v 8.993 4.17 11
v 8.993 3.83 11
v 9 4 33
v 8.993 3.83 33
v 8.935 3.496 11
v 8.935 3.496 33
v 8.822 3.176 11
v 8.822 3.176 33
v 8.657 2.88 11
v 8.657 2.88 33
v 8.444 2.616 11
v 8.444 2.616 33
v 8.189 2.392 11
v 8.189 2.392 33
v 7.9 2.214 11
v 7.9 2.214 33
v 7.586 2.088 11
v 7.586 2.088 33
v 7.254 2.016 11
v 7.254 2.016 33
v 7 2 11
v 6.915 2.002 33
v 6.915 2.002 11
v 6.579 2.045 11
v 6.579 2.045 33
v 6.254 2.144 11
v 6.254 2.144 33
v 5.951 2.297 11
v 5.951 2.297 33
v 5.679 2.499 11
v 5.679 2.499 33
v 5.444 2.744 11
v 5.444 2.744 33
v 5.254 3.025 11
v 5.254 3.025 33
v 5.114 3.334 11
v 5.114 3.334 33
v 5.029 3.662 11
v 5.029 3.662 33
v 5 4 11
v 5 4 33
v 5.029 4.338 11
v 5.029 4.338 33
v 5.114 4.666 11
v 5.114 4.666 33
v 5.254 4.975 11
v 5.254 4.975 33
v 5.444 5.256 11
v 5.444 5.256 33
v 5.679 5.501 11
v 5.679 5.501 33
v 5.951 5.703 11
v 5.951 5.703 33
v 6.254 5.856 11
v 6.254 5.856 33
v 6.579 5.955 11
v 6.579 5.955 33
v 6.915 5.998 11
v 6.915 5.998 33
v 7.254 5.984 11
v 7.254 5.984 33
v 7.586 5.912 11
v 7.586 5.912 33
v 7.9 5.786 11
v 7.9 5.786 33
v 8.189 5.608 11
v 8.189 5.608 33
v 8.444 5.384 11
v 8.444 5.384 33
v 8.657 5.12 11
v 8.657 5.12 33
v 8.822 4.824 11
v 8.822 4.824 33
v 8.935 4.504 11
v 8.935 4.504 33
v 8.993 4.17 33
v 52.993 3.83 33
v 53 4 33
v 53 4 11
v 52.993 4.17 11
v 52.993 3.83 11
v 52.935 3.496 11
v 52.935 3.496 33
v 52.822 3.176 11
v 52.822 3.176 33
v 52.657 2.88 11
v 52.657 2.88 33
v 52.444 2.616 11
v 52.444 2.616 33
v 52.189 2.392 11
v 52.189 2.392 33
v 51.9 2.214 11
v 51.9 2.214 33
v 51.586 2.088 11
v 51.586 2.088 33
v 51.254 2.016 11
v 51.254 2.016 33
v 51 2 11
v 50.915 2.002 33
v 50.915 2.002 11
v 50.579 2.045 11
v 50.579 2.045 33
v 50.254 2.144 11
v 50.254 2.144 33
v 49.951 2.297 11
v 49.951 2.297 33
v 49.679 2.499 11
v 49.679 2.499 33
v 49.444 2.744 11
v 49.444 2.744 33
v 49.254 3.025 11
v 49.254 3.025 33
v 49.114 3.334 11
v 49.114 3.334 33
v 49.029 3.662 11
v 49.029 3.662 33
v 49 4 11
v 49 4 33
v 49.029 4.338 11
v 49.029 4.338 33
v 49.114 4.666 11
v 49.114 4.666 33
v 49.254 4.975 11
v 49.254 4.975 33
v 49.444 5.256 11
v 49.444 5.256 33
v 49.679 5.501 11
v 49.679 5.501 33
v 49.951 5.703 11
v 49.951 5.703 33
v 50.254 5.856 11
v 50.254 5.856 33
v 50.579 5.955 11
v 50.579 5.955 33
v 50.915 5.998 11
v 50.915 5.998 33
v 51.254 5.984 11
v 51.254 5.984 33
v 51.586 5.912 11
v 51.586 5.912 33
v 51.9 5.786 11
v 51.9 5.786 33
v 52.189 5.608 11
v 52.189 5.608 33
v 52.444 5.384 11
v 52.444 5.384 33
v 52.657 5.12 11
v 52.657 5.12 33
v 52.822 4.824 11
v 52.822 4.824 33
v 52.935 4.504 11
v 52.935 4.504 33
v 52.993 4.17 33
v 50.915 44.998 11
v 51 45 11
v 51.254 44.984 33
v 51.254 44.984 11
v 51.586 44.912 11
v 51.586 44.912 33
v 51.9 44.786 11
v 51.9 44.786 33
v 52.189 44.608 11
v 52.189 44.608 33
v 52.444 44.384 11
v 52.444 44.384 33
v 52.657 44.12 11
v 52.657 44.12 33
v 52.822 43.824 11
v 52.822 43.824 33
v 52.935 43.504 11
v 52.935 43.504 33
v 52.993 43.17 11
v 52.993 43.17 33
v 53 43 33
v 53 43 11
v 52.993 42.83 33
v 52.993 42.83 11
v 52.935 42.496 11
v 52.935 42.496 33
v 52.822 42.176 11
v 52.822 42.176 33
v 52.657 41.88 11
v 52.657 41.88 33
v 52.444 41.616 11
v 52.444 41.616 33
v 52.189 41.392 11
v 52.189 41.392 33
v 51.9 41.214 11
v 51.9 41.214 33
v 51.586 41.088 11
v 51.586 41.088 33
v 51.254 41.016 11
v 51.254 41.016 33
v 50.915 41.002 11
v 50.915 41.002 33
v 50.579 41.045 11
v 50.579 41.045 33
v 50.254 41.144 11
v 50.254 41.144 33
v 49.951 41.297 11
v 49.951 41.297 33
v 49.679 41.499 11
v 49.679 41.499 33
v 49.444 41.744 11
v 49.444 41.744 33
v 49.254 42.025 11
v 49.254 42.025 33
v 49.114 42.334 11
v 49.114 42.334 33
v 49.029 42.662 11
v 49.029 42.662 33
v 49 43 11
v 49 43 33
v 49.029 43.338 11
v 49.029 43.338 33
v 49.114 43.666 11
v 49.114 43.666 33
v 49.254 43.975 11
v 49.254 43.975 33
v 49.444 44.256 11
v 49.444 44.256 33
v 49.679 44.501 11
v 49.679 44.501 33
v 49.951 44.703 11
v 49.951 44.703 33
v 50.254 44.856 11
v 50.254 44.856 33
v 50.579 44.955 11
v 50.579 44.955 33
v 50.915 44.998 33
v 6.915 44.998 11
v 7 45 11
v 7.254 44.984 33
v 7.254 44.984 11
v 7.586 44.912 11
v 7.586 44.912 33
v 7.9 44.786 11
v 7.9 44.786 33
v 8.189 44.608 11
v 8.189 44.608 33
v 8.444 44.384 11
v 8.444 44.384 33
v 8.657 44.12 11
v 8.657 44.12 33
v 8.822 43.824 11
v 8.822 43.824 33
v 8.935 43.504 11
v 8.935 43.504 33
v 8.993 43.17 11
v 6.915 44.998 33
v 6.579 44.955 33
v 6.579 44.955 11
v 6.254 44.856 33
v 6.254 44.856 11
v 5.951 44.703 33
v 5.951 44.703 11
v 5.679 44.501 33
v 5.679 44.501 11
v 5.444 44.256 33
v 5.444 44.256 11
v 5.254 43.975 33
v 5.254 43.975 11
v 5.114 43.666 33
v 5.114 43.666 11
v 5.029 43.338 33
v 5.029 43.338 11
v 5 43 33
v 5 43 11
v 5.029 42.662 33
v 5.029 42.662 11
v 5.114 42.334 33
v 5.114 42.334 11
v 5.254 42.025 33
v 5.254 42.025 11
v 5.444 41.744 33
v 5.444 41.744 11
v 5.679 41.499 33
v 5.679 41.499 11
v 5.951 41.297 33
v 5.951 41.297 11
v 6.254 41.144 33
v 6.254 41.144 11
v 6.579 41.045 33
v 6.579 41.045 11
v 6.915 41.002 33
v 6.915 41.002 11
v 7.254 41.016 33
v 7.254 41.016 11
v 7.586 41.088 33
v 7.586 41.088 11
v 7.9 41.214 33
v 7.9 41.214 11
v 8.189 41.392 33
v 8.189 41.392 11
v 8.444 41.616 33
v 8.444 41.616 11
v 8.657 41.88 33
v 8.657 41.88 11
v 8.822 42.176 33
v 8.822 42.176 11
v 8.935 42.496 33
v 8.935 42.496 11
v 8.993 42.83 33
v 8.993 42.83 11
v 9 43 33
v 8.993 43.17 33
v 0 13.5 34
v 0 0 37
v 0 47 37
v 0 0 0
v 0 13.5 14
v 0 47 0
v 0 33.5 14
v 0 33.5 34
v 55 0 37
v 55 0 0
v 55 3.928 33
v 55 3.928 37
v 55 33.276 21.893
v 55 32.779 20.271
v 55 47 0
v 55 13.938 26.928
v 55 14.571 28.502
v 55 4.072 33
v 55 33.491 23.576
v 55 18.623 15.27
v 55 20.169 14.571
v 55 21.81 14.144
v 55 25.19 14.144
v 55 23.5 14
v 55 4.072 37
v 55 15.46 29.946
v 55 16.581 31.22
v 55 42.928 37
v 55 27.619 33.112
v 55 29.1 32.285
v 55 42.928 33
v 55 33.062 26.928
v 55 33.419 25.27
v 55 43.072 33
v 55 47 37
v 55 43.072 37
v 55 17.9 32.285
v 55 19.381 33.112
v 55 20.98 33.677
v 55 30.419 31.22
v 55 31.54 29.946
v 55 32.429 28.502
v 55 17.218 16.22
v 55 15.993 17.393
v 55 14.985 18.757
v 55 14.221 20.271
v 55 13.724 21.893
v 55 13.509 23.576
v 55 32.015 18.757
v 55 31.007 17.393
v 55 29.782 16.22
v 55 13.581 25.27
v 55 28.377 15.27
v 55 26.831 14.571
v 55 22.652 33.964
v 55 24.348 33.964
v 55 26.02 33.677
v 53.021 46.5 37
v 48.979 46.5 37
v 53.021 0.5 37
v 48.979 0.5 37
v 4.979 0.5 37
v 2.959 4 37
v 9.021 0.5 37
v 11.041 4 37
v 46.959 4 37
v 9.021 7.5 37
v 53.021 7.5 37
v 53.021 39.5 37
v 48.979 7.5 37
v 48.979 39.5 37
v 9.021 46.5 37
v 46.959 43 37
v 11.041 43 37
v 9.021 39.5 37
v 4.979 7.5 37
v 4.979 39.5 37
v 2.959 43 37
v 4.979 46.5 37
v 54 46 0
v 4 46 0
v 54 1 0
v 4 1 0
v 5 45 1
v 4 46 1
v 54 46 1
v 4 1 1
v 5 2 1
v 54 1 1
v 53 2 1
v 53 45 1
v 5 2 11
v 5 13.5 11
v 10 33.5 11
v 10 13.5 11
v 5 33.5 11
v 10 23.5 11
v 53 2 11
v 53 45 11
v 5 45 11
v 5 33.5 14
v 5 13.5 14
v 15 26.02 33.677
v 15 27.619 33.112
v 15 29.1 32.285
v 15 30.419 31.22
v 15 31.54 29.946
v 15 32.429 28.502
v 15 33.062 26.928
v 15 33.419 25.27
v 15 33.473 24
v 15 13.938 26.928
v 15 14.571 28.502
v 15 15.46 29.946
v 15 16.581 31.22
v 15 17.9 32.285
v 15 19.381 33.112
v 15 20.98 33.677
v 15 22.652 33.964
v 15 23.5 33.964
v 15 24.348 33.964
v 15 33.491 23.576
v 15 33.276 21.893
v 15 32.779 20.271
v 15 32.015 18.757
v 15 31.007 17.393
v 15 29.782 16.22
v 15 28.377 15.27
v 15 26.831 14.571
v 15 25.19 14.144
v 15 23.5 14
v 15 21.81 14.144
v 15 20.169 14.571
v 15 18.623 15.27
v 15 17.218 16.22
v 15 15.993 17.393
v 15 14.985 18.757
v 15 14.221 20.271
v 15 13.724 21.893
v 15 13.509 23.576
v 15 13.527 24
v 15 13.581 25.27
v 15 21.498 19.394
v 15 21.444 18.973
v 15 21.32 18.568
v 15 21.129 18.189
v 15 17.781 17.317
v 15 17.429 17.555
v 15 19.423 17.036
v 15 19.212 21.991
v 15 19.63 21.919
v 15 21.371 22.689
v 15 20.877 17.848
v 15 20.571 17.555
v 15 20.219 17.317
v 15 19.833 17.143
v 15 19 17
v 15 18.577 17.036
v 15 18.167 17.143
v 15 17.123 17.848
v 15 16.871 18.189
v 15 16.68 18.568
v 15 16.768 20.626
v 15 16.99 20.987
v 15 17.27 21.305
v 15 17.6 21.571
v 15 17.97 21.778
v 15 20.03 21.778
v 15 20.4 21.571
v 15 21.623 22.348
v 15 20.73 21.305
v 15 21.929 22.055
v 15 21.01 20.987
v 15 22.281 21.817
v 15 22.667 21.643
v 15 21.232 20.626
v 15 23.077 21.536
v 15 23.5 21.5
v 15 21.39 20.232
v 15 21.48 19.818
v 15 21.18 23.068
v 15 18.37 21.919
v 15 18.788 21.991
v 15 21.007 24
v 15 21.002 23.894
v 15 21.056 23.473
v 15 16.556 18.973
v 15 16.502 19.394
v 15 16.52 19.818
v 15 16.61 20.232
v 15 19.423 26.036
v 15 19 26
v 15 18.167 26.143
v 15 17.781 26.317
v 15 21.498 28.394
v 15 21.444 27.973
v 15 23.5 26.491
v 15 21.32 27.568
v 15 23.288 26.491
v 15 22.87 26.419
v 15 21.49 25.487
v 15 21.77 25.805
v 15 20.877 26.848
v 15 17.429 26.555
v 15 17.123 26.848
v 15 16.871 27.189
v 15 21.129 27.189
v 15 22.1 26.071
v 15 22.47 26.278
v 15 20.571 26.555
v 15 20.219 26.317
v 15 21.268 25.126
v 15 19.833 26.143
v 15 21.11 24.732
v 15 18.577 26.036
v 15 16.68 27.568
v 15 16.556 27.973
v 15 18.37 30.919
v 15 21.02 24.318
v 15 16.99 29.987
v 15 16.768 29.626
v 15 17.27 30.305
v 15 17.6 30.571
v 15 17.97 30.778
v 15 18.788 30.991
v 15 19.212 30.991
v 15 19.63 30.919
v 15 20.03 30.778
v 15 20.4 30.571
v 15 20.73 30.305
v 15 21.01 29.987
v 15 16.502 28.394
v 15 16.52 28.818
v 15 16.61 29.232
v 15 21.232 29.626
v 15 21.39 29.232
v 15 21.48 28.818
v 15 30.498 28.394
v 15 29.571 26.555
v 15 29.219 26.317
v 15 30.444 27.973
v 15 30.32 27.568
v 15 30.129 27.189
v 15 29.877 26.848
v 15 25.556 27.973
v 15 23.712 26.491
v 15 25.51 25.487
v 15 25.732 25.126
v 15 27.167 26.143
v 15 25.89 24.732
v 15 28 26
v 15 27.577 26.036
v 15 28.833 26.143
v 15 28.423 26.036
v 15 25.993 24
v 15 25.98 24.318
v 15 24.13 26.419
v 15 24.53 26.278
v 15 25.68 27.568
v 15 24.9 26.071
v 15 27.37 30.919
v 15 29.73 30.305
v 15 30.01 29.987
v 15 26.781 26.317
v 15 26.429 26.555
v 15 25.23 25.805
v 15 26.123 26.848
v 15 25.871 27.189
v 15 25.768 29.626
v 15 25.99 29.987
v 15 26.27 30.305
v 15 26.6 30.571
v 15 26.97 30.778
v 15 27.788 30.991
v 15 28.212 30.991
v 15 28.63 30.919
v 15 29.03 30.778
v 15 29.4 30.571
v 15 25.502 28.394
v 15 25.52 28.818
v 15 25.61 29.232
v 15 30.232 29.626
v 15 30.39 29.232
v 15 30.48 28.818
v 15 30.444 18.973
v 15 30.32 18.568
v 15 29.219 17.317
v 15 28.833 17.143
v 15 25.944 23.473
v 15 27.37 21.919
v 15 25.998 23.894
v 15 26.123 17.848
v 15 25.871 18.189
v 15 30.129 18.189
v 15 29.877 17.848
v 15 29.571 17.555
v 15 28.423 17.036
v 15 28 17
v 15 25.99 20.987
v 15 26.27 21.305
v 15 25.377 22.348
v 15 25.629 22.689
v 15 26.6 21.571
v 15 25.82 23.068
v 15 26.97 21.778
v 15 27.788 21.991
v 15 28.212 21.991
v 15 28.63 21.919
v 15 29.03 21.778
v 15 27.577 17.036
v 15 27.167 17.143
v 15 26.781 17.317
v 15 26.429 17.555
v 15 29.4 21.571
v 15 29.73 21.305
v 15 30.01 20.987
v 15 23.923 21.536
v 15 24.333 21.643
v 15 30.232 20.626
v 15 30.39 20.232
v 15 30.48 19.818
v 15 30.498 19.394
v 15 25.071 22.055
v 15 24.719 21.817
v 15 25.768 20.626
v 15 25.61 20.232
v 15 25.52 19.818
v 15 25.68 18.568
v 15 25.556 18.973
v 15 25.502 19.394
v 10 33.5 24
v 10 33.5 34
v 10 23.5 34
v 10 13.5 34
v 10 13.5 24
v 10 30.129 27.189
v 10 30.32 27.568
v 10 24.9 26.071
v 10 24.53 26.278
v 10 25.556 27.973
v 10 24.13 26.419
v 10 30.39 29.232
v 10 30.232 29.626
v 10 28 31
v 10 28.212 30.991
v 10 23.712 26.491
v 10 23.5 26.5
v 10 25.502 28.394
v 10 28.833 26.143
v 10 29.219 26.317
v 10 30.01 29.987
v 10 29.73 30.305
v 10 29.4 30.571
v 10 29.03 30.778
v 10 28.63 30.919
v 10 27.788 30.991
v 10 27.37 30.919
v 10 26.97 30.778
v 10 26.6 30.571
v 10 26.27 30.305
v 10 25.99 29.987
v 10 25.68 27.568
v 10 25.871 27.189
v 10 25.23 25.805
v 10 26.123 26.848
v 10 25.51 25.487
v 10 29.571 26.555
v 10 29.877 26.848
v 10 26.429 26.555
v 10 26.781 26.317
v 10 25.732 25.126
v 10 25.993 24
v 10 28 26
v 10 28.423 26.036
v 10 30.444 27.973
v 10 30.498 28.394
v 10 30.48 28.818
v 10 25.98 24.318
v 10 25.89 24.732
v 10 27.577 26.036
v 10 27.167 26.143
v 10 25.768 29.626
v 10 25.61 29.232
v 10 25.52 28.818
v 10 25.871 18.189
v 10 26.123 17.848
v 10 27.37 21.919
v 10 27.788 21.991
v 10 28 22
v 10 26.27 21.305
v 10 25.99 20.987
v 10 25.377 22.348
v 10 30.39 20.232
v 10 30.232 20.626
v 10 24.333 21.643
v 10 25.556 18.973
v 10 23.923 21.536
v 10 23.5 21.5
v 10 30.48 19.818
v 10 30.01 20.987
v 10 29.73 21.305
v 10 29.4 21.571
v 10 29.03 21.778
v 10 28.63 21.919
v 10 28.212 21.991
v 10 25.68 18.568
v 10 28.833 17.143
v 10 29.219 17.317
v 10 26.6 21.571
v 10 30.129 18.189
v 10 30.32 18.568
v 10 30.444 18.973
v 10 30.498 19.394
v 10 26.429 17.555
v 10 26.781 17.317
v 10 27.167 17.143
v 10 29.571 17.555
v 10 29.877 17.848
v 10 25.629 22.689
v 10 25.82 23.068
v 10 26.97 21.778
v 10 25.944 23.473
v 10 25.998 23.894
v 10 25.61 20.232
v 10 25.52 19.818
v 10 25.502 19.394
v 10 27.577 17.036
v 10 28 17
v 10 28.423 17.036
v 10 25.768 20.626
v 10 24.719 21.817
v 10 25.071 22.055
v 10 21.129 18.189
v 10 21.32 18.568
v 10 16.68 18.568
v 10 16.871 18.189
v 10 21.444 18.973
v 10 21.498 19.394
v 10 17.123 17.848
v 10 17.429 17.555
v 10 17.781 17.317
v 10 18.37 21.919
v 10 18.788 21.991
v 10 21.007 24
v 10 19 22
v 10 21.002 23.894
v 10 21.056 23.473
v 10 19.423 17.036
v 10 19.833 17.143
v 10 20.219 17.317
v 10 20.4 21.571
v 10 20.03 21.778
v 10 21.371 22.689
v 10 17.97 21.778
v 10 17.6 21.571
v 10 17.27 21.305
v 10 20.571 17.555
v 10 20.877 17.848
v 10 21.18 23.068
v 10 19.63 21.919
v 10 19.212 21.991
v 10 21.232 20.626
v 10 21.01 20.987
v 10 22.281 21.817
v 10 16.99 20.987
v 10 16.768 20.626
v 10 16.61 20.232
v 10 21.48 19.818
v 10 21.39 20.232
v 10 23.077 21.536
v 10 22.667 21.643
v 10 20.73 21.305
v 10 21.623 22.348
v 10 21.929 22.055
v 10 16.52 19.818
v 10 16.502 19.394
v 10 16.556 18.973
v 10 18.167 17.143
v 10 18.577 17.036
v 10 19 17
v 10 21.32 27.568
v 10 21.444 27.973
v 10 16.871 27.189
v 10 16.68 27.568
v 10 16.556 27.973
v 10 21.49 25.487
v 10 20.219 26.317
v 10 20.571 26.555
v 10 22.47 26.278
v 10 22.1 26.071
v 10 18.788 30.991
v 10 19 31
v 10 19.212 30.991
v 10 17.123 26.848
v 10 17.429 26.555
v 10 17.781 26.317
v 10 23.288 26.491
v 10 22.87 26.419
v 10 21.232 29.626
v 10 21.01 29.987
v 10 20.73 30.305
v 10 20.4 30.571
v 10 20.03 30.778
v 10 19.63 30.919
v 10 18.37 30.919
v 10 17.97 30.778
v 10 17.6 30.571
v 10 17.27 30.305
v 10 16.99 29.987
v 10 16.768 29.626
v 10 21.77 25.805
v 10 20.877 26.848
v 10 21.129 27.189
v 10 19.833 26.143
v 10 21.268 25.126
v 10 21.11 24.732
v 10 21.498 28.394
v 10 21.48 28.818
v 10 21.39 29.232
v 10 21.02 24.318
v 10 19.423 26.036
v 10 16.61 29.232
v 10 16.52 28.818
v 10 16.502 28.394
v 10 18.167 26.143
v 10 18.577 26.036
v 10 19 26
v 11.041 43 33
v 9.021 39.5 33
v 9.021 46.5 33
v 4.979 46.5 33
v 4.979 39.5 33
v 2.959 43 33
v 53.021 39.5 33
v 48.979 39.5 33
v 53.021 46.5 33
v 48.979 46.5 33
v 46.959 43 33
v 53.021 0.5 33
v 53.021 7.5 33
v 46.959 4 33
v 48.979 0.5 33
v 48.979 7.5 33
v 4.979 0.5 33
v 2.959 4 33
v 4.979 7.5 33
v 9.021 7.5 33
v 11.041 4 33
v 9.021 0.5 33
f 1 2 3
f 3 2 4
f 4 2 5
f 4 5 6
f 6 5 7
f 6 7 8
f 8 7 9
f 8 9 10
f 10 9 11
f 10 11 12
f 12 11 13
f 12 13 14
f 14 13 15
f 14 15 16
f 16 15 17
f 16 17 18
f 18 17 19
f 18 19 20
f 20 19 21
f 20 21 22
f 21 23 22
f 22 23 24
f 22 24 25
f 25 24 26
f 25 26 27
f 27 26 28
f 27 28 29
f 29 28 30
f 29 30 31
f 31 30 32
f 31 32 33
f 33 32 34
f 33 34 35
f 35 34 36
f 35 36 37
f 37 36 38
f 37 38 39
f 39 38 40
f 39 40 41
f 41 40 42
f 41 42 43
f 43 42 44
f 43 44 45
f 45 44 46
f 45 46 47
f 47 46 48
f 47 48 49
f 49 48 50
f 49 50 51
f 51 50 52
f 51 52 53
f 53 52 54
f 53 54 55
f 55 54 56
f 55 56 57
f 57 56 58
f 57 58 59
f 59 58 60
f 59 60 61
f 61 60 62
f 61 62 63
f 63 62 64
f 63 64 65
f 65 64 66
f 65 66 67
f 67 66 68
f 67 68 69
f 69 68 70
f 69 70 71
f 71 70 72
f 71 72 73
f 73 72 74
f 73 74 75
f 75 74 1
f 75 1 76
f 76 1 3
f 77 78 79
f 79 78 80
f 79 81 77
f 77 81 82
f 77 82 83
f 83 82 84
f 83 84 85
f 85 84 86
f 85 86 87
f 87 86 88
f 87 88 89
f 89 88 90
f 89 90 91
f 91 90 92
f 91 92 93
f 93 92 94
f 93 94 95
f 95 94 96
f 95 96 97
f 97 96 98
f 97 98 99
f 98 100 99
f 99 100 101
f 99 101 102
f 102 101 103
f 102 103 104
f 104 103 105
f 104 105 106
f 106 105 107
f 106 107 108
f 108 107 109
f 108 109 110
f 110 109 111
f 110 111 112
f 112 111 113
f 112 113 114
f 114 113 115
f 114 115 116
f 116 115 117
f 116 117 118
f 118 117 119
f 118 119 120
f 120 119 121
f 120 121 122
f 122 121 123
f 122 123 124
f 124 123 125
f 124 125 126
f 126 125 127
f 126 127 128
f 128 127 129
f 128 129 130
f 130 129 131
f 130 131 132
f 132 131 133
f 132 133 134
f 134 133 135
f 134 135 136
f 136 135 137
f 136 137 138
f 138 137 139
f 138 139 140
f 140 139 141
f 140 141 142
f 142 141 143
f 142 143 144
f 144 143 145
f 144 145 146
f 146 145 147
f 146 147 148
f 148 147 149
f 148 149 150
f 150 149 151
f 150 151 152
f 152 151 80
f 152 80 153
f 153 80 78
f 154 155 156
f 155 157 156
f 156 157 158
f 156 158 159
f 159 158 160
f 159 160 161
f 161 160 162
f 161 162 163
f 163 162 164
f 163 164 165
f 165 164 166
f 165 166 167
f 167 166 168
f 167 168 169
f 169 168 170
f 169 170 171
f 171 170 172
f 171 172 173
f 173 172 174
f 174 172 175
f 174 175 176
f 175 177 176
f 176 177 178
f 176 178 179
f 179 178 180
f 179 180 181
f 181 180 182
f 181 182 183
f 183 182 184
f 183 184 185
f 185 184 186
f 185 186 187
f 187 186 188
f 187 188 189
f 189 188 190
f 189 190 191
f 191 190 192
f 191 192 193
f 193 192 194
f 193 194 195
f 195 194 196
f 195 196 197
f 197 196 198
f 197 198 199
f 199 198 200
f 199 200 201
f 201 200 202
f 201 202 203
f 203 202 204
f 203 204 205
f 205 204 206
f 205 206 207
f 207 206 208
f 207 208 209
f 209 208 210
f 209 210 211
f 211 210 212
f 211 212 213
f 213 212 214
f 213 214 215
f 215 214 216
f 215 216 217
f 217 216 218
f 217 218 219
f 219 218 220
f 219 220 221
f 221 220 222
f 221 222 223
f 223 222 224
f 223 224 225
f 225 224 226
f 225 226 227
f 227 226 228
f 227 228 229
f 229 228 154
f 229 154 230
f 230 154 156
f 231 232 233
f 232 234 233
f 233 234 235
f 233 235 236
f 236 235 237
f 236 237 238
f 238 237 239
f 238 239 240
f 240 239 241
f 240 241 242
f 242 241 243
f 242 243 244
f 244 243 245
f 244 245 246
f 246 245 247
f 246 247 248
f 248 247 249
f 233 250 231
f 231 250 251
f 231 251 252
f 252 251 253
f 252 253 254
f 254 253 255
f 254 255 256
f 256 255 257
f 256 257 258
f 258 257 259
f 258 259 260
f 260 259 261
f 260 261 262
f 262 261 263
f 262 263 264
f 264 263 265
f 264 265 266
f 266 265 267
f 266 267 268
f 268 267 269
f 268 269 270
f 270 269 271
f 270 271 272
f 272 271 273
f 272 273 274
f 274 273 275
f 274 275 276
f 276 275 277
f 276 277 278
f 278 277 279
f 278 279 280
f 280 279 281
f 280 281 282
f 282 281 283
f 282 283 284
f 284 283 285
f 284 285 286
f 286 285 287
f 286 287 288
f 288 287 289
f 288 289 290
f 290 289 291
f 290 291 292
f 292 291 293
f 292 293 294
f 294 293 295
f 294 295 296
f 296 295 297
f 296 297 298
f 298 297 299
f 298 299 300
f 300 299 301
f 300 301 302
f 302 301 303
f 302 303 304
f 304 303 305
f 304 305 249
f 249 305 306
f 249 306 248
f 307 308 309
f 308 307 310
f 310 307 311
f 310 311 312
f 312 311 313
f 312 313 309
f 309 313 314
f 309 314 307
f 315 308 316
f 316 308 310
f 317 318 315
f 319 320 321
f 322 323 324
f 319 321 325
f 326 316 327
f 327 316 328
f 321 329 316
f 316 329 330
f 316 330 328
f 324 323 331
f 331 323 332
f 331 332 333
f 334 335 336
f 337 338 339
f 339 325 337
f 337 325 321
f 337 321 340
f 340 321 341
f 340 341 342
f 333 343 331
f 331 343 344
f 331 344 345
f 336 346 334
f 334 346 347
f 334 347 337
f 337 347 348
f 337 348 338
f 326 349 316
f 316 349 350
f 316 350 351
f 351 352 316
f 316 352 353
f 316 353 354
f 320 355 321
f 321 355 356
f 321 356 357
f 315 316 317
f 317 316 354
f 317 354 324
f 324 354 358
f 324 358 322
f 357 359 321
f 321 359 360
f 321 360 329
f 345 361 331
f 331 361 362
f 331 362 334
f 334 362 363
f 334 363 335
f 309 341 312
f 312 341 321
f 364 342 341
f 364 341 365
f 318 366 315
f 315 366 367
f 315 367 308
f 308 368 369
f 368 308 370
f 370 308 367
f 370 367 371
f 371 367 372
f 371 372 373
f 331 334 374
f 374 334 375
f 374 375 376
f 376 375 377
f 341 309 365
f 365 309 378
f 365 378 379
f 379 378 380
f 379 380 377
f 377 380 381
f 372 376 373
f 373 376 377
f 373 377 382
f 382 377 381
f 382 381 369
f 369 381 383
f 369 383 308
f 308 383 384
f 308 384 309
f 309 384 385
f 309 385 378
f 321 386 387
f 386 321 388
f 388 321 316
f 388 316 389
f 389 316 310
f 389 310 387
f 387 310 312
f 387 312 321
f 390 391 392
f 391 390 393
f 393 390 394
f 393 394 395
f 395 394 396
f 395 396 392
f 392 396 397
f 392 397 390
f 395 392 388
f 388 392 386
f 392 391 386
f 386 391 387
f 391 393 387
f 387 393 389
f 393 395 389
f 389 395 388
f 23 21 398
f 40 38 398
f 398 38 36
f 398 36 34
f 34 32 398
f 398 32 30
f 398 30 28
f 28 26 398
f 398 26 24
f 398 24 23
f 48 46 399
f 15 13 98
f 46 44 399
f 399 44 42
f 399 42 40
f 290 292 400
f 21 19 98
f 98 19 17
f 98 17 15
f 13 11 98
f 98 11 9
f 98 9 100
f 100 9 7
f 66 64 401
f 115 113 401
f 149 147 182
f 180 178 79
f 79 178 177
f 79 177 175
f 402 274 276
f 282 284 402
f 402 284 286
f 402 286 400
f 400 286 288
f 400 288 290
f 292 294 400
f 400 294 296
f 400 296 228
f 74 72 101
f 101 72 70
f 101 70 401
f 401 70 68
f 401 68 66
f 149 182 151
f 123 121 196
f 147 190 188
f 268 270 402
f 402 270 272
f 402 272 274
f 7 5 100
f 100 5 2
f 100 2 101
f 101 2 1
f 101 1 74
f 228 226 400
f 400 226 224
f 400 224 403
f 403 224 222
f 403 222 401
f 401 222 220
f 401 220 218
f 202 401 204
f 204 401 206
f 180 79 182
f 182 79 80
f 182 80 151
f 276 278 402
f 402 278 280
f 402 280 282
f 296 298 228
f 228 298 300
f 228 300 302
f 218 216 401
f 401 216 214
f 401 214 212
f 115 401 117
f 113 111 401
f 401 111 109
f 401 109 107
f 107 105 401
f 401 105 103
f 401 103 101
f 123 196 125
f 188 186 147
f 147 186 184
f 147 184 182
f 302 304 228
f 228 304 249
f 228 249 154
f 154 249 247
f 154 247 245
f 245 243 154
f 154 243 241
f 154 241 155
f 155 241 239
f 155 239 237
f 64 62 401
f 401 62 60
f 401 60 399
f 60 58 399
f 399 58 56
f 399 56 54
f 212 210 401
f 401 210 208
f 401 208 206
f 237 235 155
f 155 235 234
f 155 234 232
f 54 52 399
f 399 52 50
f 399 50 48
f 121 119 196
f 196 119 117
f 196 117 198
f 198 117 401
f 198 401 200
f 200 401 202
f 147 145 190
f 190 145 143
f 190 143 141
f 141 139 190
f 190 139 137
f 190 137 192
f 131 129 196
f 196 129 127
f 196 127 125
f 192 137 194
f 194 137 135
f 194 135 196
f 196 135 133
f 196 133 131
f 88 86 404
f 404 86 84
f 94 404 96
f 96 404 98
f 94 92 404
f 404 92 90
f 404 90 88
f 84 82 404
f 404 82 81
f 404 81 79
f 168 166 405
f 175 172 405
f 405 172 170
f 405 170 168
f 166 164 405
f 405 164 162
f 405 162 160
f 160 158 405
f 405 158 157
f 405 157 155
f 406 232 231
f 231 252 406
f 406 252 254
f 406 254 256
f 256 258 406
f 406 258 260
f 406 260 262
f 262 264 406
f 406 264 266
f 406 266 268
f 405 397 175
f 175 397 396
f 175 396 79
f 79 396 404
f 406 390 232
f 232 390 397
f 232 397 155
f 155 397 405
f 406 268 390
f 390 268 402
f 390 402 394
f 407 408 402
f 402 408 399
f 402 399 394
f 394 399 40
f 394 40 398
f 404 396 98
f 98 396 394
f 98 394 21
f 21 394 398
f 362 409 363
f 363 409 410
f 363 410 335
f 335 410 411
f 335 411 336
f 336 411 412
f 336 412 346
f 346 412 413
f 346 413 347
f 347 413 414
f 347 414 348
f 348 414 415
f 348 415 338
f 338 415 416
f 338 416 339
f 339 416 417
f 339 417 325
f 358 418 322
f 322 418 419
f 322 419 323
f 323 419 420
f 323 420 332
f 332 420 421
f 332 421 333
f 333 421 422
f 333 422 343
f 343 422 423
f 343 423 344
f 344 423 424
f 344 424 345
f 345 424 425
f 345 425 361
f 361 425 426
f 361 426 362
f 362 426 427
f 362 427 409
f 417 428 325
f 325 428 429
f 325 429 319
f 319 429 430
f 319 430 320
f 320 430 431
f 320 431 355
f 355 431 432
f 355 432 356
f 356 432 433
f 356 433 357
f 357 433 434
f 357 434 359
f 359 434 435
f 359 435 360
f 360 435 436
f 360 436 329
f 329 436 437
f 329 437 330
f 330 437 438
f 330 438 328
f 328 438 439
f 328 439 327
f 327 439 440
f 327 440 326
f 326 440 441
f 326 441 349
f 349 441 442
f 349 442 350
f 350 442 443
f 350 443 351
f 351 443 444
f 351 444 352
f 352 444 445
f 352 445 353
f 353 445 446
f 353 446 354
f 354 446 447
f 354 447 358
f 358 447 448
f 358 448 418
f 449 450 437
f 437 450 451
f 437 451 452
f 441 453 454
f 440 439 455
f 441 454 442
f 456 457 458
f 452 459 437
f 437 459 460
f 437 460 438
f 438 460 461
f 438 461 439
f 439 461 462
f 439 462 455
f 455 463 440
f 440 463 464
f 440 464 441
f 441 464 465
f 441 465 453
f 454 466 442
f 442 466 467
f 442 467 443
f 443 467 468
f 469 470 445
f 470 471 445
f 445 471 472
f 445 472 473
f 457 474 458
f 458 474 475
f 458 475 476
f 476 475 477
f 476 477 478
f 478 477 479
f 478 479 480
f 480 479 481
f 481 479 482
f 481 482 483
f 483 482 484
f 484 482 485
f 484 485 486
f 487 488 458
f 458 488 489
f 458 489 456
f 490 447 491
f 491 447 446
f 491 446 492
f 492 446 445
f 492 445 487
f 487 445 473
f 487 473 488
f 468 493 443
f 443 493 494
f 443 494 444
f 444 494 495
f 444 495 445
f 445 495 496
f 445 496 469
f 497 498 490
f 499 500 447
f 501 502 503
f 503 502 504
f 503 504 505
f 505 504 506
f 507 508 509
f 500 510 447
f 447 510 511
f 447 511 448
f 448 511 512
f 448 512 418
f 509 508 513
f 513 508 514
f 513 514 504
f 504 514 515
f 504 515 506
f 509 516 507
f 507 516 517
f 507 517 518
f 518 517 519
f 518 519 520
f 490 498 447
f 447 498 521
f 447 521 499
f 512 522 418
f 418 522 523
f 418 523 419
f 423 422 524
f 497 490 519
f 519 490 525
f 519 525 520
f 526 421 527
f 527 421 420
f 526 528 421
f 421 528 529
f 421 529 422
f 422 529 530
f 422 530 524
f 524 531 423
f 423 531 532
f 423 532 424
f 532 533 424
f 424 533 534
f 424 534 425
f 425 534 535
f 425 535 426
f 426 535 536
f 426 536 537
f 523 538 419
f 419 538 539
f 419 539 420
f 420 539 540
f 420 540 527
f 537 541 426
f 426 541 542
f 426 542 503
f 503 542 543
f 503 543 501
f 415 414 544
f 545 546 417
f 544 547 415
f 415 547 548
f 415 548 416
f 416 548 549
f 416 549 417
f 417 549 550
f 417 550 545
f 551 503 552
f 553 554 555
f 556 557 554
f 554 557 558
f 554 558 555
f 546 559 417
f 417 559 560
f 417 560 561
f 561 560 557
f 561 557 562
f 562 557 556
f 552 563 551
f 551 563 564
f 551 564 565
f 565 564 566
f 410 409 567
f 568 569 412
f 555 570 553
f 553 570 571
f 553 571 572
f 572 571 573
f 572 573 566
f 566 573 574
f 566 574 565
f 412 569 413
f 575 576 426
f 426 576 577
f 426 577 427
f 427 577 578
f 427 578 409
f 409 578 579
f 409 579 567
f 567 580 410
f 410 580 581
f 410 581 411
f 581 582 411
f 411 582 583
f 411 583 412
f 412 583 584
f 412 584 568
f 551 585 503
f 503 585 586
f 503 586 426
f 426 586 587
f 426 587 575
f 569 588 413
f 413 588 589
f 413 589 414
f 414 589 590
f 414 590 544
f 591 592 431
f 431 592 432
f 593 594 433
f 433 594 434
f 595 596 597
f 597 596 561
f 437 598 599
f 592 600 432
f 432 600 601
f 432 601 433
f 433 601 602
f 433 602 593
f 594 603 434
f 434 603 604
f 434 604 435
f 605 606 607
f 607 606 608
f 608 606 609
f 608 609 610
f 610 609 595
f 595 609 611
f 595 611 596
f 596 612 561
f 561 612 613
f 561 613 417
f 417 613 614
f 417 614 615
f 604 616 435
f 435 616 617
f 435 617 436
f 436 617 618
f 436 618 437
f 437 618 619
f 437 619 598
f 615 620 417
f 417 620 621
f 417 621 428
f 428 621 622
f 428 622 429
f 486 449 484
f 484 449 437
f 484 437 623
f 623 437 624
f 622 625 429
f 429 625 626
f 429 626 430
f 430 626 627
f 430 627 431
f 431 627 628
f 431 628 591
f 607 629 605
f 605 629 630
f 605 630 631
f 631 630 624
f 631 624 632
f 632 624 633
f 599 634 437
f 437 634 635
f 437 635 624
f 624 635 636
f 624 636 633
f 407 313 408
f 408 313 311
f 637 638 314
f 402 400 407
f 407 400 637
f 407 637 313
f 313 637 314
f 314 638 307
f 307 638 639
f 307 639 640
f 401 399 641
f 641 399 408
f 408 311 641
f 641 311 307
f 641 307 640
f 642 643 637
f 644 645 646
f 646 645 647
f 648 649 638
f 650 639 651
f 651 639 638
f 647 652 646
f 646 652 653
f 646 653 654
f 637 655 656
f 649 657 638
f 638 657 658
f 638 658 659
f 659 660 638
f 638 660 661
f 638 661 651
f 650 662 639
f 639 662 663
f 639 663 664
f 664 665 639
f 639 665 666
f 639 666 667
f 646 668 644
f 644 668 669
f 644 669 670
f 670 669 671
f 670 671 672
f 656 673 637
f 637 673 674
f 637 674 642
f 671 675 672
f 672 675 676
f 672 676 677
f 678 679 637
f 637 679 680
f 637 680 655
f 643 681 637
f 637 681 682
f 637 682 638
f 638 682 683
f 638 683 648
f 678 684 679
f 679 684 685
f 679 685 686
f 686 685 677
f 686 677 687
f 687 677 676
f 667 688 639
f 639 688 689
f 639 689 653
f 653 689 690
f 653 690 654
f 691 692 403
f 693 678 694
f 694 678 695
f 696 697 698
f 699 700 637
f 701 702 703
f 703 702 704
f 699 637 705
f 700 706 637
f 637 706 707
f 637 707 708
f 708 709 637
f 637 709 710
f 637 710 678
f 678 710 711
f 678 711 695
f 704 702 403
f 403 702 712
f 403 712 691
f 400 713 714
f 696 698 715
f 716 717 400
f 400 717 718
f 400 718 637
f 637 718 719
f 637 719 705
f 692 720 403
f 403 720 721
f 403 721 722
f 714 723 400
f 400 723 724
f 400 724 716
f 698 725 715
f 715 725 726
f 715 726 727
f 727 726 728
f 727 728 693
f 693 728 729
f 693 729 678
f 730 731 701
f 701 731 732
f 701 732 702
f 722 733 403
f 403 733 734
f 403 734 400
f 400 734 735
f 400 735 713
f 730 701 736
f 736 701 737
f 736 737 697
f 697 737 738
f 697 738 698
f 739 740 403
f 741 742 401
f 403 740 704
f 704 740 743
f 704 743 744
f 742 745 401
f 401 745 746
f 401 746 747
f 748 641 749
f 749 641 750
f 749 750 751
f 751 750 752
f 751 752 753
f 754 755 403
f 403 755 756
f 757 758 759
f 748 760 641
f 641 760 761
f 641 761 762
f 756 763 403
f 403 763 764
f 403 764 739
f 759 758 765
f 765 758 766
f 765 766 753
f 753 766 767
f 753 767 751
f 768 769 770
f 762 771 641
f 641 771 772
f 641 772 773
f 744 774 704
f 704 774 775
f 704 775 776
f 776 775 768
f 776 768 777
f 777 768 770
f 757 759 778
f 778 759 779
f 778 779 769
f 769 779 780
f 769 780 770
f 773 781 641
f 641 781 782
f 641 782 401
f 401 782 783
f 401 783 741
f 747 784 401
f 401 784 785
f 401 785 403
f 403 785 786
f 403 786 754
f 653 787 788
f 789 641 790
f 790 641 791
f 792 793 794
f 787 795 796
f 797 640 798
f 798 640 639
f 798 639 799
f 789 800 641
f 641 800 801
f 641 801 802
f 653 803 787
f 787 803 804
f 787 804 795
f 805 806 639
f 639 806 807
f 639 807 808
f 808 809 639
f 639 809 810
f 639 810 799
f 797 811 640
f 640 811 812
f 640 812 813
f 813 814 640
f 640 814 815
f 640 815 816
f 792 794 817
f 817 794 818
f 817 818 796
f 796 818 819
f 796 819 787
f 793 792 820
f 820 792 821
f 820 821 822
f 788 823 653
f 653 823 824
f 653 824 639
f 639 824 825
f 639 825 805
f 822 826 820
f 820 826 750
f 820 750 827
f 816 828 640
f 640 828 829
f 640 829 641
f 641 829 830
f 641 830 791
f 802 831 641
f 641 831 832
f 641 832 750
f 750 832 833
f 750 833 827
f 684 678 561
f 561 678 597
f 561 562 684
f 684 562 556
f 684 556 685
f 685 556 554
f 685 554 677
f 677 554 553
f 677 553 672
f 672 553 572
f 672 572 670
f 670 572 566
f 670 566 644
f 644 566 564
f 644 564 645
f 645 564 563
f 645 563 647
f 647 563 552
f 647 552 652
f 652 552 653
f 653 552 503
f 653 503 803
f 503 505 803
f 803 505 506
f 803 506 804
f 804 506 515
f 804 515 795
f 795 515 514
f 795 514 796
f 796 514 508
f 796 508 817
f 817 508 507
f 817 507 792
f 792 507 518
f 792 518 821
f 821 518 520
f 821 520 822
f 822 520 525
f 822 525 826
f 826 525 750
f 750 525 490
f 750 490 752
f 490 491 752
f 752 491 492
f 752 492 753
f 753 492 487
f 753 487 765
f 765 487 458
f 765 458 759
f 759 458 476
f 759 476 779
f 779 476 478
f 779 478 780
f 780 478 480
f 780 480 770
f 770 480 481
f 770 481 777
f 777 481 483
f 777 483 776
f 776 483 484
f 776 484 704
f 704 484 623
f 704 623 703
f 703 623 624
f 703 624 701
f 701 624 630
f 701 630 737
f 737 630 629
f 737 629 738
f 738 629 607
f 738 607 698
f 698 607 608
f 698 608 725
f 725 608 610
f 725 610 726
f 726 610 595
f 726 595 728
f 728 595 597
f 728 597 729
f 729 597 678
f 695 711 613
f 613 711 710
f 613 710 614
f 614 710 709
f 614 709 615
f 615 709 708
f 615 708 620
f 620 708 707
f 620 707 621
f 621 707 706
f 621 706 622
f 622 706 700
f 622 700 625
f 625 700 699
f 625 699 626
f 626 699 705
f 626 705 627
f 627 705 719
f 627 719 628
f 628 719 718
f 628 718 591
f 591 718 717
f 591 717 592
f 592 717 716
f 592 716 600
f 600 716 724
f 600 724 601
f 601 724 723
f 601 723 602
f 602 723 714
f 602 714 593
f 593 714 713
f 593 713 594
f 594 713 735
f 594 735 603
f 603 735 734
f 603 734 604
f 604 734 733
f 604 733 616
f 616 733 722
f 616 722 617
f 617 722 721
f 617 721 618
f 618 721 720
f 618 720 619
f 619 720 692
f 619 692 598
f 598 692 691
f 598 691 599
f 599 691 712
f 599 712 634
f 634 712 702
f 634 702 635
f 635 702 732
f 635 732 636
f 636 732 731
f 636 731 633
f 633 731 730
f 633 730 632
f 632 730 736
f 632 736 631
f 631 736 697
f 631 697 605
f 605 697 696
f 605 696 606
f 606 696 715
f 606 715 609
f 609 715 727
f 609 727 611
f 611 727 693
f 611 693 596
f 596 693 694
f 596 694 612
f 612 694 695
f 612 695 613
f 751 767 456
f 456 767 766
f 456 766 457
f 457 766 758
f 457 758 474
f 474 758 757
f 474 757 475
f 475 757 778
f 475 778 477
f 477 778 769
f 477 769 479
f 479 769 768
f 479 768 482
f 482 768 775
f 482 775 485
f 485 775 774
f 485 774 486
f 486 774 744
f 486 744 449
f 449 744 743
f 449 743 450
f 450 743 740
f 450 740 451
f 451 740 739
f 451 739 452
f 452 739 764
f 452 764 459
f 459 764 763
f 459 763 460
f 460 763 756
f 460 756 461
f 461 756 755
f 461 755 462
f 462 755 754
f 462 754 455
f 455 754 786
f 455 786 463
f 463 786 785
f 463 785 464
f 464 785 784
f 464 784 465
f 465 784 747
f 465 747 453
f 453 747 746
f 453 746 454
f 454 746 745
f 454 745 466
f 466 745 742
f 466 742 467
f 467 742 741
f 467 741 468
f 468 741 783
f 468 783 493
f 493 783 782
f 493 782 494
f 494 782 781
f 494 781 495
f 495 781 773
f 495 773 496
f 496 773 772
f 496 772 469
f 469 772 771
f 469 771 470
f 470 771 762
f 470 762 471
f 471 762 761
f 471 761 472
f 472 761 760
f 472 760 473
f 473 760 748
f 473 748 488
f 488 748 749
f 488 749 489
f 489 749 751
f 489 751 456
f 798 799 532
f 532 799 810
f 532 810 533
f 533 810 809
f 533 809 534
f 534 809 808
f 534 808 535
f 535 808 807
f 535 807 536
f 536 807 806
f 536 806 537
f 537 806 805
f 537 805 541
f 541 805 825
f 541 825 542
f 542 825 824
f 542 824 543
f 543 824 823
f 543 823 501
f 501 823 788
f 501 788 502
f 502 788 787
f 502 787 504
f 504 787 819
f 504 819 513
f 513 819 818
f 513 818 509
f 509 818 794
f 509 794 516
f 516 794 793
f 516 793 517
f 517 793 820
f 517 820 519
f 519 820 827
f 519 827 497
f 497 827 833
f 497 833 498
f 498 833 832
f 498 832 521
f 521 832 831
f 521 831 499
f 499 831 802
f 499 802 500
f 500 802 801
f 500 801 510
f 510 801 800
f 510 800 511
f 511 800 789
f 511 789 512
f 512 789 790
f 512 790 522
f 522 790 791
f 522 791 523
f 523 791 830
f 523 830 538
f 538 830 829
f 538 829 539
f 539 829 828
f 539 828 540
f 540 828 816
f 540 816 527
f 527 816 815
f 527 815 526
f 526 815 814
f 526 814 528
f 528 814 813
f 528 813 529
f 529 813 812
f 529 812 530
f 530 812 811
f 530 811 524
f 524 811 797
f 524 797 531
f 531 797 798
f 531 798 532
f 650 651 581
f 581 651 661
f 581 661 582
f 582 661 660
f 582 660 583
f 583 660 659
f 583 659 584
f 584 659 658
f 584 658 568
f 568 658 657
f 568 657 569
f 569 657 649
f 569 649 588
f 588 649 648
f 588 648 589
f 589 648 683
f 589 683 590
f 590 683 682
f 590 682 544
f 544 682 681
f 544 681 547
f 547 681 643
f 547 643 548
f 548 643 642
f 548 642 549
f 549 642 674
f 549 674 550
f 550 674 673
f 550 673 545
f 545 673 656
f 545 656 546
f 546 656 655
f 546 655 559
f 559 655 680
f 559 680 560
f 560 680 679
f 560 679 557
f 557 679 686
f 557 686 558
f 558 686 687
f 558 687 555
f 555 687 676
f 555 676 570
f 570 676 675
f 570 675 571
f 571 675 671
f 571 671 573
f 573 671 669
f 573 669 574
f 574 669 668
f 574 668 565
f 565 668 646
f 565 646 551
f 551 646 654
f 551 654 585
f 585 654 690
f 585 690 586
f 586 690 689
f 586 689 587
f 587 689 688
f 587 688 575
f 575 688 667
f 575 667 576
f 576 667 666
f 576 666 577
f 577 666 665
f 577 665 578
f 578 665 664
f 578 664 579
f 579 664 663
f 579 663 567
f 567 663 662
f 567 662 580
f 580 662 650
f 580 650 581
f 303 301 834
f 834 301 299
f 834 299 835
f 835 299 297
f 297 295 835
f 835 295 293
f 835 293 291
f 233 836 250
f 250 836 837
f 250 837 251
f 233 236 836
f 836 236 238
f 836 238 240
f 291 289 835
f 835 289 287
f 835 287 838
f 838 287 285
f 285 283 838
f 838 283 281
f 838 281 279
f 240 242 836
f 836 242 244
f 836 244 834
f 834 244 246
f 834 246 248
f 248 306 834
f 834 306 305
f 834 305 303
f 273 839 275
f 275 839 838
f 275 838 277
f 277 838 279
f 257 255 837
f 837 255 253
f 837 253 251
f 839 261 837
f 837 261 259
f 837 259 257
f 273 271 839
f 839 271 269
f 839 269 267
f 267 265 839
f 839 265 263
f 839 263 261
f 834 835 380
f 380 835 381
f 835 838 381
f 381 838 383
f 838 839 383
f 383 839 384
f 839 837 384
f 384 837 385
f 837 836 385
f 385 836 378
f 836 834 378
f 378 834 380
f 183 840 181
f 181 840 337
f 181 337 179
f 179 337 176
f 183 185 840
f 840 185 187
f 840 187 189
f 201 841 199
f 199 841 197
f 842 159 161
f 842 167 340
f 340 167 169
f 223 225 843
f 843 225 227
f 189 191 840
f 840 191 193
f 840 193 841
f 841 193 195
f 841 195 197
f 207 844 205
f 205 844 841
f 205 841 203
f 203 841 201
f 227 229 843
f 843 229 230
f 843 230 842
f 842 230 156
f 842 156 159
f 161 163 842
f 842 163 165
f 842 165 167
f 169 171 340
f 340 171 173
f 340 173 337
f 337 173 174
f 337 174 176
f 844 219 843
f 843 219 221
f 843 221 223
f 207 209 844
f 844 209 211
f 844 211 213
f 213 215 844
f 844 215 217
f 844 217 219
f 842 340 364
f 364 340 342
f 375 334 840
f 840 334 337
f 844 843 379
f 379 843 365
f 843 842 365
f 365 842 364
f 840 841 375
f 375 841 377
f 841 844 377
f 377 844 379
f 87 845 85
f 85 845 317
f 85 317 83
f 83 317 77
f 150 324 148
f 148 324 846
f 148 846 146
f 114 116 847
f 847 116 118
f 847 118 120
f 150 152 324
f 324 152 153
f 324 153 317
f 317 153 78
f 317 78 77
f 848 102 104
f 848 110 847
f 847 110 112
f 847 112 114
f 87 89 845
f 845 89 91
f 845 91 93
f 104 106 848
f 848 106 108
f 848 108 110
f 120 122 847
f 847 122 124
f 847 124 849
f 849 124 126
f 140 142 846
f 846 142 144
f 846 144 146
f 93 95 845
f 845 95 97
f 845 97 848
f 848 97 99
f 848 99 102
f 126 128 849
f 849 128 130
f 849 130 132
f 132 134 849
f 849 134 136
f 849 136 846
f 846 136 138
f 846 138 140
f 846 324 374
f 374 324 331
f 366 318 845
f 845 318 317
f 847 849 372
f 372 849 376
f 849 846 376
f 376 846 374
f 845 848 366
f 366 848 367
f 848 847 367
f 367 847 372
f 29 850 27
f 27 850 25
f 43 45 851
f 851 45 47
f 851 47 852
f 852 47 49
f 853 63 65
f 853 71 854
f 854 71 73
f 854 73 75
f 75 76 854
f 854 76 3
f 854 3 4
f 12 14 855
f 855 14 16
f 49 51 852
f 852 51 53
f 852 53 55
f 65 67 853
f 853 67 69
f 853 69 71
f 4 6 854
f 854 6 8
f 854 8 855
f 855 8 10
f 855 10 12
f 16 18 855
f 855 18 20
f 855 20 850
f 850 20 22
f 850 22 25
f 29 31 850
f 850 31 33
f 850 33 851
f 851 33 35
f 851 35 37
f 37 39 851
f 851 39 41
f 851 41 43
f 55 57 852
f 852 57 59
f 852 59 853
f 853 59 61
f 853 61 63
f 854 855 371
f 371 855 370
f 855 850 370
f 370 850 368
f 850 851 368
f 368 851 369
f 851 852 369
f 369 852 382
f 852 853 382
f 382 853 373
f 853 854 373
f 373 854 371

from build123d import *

# Parameters (mm, degrees)
ESQUISSE1_W             = 55
ESQUISSE1_H             = 47
BOSS_EXTRU_1_DEPTH      = 37
ESQUISSE2_R             = 2
ENL_V_MAT_EXTRU_1_DEPTH = 82.258845672
ESQUISSE3_W             = 50
ESQUISSE3_H             = 45
ENL_V_MAT_EXTRU_2_DEPTH = 1
ESQUISSE4_W             = 48
ESQUISSE4_H             = 43
ENL_V_MAT_EXTRU_3_DEPTH = 10
ESQUISSE5_R             = 10
ENL_V_MAT_EXTRU_4_DEPTH = 40
ESQUISSE6_W             = 20
ESQUISSE6_H             = 20
ENL_V_MAT_EXTRU_5_DEPTH = 10
ESQUISSE7_W             = 5
ESQUISSE7_H             = 20
ENL_V_MAT_EXTRU_6_DEPTH = 4
ESQUISSE10_R            = 2.5
ENL_V_MAT_EXTRU_7_DEPTH = 72.95832127
ENL_V_MAT_EXTRU_8_DEPTH = 4


with BuildPart() as part:
    # Esquisse1 → Boss.-Extru.1 (new body)
    with BuildSketch(Plane.XY):
        with Locations((27.5, 23.5)):
            Rectangle(ESQUISSE1_W, ESQUISSE1_H)
    extrude(amount=BOSS_EXTRU_1_DEPTH)

    # Esquisse2 → Enlèv. mat.-Extru.1 (cut, through all)
    with BuildSketch(Plane(origin=(0, 0, 0), x_dir=(-1, 0, 0), z_dir=(0, 0, -1))):
        with Locations((-51, 43)):
            Circle(ESQUISSE2_R)
        with Locations((-7, 43)):
            Circle(ESQUISSE2_R)
        with Locations((-7, 4)):
            Circle(ESQUISSE2_R)
        with Locations((-51, 4)):
            Circle(ESQUISSE2_R)
    extrude(amount=-ENL_V_MAT_EXTRU_1_DEPTH, mode=Mode.SUBTRACT)

    # Esquisse3 → Enlèv. mat.-Extru.2 (cut)
    with BuildSketch(Plane(origin=(0, 0, 0), x_dir=(-1, 0, 0), z_dir=(0, 0, -1))):
        with Locations((-29, 23.5)):
            Rectangle(ESQUISSE3_W, ESQUISSE3_H)
    extrude(amount=-ENL_V_MAT_EXTRU_2_DEPTH, mode=Mode.SUBTRACT)

    # Esquisse4 → Enlèv. mat.-Extru.3 (cut)
    with BuildSketch(Plane(origin=(0, 0, 1), x_dir=(-1, 0, 0), z_dir=(0, 0, -1))):
        with Locations((-29, 23.5)):
            Rectangle(ESQUISSE4_W, ESQUISSE4_H)
    extrude(amount=-ENL_V_MAT_EXTRU_3_DEPTH, mode=Mode.SUBTRACT)

    # Esquisse5 → Enlèv. mat.-Extru.4 (cut)
    with BuildSketch(Plane(origin=(55, 0, 0), x_dir=(0, 0, -1), z_dir=(1, 0, 0))):
        with Locations((-24, 23.5)):
            Circle(ESQUISSE5_R)
    extrude(amount=-ENL_V_MAT_EXTRU_4_DEPTH, mode=Mode.SUBTRACT)

    # Esquisse6 → Enlèv. mat.-Extru.5 (cut)
    with BuildSketch(Plane.ZY):
        with Locations((24, 23.5)):
            Rectangle(ESQUISSE6_W, ESQUISSE6_H)
    extrude(amount=-ENL_V_MAT_EXTRU_5_DEPTH, mode=Mode.SUBTRACT)

    # Esquisse7 → Enlèv. mat.-Extru.6 (cut)
    with BuildSketch(Plane(origin=(0, 0, 11), x_dir=(-1, 0, 0), z_dir=(0, 0, -1))):
        with Locations((-7.5, 23.5)):
            Rectangle(ESQUISSE7_W, ESQUISSE7_H)
    extrude(amount=-ENL_V_MAT_EXTRU_6_DEPTH, mode=Mode.SUBTRACT)

    # Esquisse10 → Enlèv. mat.-Extru.7 (cut, through all)
    with BuildSketch(Plane(origin=(15, 0, 0), x_dir=(0, 0, -1), z_dir=(1, 0, 0))):
        with Locations((-24, 23.5)):
            Circle(ESQUISSE10_R)
        with Locations((-19.5, 28)):
            Circle(ESQUISSE10_R)
        with Locations((-19.5, 19)):
            Circle(ESQUISSE10_R)
        with Locations((-28.5, 19)):
            Circle(ESQUISSE10_R)
        with Locations((-28.5, 28)):
            Circle(ESQUISSE10_R)
    extrude(amount=-ENL_V_MAT_EXTRU_7_DEPTH, mode=Mode.SUBTRACT)

    # Esquisse11 → Enlèv. mat.-Extru.8 (cut)
    with BuildSketch(Plane.XY.offset(37)):
        Polygon((11.041451884, 43), (9.020725942, 46.5), (4.979274058, 46.5), (2.958548116, 43), (4.979274058, 39.5), (9.020725942, 39.5), align=None)
        Polygon((46.958548116, 43), (48.979274058, 39.5), (53.020725942, 39.5), (55.041451884, 43), (53.020725942, 46.5), (48.979274058, 46.5), align=None)
        Polygon((46.958548116, 4), (48.979274058, 0.5), (53.020725942, 0.5), (55.041451884, 4), (53.020725942, 7.5), (48.979274058, 7.5), align=None)
        Polygon((11.041451884, 4), (9.020725942, 7.5), (4.979274058, 7.5), (2.958548116, 4), (4.979274058, 0.5), (9.020725942, 0.5), align=None)
    extrude(amount=-ENL_V_MAT_EXTRU_8_DEPTH, mode=Mode.SUBTRACT)


solid = part.part
